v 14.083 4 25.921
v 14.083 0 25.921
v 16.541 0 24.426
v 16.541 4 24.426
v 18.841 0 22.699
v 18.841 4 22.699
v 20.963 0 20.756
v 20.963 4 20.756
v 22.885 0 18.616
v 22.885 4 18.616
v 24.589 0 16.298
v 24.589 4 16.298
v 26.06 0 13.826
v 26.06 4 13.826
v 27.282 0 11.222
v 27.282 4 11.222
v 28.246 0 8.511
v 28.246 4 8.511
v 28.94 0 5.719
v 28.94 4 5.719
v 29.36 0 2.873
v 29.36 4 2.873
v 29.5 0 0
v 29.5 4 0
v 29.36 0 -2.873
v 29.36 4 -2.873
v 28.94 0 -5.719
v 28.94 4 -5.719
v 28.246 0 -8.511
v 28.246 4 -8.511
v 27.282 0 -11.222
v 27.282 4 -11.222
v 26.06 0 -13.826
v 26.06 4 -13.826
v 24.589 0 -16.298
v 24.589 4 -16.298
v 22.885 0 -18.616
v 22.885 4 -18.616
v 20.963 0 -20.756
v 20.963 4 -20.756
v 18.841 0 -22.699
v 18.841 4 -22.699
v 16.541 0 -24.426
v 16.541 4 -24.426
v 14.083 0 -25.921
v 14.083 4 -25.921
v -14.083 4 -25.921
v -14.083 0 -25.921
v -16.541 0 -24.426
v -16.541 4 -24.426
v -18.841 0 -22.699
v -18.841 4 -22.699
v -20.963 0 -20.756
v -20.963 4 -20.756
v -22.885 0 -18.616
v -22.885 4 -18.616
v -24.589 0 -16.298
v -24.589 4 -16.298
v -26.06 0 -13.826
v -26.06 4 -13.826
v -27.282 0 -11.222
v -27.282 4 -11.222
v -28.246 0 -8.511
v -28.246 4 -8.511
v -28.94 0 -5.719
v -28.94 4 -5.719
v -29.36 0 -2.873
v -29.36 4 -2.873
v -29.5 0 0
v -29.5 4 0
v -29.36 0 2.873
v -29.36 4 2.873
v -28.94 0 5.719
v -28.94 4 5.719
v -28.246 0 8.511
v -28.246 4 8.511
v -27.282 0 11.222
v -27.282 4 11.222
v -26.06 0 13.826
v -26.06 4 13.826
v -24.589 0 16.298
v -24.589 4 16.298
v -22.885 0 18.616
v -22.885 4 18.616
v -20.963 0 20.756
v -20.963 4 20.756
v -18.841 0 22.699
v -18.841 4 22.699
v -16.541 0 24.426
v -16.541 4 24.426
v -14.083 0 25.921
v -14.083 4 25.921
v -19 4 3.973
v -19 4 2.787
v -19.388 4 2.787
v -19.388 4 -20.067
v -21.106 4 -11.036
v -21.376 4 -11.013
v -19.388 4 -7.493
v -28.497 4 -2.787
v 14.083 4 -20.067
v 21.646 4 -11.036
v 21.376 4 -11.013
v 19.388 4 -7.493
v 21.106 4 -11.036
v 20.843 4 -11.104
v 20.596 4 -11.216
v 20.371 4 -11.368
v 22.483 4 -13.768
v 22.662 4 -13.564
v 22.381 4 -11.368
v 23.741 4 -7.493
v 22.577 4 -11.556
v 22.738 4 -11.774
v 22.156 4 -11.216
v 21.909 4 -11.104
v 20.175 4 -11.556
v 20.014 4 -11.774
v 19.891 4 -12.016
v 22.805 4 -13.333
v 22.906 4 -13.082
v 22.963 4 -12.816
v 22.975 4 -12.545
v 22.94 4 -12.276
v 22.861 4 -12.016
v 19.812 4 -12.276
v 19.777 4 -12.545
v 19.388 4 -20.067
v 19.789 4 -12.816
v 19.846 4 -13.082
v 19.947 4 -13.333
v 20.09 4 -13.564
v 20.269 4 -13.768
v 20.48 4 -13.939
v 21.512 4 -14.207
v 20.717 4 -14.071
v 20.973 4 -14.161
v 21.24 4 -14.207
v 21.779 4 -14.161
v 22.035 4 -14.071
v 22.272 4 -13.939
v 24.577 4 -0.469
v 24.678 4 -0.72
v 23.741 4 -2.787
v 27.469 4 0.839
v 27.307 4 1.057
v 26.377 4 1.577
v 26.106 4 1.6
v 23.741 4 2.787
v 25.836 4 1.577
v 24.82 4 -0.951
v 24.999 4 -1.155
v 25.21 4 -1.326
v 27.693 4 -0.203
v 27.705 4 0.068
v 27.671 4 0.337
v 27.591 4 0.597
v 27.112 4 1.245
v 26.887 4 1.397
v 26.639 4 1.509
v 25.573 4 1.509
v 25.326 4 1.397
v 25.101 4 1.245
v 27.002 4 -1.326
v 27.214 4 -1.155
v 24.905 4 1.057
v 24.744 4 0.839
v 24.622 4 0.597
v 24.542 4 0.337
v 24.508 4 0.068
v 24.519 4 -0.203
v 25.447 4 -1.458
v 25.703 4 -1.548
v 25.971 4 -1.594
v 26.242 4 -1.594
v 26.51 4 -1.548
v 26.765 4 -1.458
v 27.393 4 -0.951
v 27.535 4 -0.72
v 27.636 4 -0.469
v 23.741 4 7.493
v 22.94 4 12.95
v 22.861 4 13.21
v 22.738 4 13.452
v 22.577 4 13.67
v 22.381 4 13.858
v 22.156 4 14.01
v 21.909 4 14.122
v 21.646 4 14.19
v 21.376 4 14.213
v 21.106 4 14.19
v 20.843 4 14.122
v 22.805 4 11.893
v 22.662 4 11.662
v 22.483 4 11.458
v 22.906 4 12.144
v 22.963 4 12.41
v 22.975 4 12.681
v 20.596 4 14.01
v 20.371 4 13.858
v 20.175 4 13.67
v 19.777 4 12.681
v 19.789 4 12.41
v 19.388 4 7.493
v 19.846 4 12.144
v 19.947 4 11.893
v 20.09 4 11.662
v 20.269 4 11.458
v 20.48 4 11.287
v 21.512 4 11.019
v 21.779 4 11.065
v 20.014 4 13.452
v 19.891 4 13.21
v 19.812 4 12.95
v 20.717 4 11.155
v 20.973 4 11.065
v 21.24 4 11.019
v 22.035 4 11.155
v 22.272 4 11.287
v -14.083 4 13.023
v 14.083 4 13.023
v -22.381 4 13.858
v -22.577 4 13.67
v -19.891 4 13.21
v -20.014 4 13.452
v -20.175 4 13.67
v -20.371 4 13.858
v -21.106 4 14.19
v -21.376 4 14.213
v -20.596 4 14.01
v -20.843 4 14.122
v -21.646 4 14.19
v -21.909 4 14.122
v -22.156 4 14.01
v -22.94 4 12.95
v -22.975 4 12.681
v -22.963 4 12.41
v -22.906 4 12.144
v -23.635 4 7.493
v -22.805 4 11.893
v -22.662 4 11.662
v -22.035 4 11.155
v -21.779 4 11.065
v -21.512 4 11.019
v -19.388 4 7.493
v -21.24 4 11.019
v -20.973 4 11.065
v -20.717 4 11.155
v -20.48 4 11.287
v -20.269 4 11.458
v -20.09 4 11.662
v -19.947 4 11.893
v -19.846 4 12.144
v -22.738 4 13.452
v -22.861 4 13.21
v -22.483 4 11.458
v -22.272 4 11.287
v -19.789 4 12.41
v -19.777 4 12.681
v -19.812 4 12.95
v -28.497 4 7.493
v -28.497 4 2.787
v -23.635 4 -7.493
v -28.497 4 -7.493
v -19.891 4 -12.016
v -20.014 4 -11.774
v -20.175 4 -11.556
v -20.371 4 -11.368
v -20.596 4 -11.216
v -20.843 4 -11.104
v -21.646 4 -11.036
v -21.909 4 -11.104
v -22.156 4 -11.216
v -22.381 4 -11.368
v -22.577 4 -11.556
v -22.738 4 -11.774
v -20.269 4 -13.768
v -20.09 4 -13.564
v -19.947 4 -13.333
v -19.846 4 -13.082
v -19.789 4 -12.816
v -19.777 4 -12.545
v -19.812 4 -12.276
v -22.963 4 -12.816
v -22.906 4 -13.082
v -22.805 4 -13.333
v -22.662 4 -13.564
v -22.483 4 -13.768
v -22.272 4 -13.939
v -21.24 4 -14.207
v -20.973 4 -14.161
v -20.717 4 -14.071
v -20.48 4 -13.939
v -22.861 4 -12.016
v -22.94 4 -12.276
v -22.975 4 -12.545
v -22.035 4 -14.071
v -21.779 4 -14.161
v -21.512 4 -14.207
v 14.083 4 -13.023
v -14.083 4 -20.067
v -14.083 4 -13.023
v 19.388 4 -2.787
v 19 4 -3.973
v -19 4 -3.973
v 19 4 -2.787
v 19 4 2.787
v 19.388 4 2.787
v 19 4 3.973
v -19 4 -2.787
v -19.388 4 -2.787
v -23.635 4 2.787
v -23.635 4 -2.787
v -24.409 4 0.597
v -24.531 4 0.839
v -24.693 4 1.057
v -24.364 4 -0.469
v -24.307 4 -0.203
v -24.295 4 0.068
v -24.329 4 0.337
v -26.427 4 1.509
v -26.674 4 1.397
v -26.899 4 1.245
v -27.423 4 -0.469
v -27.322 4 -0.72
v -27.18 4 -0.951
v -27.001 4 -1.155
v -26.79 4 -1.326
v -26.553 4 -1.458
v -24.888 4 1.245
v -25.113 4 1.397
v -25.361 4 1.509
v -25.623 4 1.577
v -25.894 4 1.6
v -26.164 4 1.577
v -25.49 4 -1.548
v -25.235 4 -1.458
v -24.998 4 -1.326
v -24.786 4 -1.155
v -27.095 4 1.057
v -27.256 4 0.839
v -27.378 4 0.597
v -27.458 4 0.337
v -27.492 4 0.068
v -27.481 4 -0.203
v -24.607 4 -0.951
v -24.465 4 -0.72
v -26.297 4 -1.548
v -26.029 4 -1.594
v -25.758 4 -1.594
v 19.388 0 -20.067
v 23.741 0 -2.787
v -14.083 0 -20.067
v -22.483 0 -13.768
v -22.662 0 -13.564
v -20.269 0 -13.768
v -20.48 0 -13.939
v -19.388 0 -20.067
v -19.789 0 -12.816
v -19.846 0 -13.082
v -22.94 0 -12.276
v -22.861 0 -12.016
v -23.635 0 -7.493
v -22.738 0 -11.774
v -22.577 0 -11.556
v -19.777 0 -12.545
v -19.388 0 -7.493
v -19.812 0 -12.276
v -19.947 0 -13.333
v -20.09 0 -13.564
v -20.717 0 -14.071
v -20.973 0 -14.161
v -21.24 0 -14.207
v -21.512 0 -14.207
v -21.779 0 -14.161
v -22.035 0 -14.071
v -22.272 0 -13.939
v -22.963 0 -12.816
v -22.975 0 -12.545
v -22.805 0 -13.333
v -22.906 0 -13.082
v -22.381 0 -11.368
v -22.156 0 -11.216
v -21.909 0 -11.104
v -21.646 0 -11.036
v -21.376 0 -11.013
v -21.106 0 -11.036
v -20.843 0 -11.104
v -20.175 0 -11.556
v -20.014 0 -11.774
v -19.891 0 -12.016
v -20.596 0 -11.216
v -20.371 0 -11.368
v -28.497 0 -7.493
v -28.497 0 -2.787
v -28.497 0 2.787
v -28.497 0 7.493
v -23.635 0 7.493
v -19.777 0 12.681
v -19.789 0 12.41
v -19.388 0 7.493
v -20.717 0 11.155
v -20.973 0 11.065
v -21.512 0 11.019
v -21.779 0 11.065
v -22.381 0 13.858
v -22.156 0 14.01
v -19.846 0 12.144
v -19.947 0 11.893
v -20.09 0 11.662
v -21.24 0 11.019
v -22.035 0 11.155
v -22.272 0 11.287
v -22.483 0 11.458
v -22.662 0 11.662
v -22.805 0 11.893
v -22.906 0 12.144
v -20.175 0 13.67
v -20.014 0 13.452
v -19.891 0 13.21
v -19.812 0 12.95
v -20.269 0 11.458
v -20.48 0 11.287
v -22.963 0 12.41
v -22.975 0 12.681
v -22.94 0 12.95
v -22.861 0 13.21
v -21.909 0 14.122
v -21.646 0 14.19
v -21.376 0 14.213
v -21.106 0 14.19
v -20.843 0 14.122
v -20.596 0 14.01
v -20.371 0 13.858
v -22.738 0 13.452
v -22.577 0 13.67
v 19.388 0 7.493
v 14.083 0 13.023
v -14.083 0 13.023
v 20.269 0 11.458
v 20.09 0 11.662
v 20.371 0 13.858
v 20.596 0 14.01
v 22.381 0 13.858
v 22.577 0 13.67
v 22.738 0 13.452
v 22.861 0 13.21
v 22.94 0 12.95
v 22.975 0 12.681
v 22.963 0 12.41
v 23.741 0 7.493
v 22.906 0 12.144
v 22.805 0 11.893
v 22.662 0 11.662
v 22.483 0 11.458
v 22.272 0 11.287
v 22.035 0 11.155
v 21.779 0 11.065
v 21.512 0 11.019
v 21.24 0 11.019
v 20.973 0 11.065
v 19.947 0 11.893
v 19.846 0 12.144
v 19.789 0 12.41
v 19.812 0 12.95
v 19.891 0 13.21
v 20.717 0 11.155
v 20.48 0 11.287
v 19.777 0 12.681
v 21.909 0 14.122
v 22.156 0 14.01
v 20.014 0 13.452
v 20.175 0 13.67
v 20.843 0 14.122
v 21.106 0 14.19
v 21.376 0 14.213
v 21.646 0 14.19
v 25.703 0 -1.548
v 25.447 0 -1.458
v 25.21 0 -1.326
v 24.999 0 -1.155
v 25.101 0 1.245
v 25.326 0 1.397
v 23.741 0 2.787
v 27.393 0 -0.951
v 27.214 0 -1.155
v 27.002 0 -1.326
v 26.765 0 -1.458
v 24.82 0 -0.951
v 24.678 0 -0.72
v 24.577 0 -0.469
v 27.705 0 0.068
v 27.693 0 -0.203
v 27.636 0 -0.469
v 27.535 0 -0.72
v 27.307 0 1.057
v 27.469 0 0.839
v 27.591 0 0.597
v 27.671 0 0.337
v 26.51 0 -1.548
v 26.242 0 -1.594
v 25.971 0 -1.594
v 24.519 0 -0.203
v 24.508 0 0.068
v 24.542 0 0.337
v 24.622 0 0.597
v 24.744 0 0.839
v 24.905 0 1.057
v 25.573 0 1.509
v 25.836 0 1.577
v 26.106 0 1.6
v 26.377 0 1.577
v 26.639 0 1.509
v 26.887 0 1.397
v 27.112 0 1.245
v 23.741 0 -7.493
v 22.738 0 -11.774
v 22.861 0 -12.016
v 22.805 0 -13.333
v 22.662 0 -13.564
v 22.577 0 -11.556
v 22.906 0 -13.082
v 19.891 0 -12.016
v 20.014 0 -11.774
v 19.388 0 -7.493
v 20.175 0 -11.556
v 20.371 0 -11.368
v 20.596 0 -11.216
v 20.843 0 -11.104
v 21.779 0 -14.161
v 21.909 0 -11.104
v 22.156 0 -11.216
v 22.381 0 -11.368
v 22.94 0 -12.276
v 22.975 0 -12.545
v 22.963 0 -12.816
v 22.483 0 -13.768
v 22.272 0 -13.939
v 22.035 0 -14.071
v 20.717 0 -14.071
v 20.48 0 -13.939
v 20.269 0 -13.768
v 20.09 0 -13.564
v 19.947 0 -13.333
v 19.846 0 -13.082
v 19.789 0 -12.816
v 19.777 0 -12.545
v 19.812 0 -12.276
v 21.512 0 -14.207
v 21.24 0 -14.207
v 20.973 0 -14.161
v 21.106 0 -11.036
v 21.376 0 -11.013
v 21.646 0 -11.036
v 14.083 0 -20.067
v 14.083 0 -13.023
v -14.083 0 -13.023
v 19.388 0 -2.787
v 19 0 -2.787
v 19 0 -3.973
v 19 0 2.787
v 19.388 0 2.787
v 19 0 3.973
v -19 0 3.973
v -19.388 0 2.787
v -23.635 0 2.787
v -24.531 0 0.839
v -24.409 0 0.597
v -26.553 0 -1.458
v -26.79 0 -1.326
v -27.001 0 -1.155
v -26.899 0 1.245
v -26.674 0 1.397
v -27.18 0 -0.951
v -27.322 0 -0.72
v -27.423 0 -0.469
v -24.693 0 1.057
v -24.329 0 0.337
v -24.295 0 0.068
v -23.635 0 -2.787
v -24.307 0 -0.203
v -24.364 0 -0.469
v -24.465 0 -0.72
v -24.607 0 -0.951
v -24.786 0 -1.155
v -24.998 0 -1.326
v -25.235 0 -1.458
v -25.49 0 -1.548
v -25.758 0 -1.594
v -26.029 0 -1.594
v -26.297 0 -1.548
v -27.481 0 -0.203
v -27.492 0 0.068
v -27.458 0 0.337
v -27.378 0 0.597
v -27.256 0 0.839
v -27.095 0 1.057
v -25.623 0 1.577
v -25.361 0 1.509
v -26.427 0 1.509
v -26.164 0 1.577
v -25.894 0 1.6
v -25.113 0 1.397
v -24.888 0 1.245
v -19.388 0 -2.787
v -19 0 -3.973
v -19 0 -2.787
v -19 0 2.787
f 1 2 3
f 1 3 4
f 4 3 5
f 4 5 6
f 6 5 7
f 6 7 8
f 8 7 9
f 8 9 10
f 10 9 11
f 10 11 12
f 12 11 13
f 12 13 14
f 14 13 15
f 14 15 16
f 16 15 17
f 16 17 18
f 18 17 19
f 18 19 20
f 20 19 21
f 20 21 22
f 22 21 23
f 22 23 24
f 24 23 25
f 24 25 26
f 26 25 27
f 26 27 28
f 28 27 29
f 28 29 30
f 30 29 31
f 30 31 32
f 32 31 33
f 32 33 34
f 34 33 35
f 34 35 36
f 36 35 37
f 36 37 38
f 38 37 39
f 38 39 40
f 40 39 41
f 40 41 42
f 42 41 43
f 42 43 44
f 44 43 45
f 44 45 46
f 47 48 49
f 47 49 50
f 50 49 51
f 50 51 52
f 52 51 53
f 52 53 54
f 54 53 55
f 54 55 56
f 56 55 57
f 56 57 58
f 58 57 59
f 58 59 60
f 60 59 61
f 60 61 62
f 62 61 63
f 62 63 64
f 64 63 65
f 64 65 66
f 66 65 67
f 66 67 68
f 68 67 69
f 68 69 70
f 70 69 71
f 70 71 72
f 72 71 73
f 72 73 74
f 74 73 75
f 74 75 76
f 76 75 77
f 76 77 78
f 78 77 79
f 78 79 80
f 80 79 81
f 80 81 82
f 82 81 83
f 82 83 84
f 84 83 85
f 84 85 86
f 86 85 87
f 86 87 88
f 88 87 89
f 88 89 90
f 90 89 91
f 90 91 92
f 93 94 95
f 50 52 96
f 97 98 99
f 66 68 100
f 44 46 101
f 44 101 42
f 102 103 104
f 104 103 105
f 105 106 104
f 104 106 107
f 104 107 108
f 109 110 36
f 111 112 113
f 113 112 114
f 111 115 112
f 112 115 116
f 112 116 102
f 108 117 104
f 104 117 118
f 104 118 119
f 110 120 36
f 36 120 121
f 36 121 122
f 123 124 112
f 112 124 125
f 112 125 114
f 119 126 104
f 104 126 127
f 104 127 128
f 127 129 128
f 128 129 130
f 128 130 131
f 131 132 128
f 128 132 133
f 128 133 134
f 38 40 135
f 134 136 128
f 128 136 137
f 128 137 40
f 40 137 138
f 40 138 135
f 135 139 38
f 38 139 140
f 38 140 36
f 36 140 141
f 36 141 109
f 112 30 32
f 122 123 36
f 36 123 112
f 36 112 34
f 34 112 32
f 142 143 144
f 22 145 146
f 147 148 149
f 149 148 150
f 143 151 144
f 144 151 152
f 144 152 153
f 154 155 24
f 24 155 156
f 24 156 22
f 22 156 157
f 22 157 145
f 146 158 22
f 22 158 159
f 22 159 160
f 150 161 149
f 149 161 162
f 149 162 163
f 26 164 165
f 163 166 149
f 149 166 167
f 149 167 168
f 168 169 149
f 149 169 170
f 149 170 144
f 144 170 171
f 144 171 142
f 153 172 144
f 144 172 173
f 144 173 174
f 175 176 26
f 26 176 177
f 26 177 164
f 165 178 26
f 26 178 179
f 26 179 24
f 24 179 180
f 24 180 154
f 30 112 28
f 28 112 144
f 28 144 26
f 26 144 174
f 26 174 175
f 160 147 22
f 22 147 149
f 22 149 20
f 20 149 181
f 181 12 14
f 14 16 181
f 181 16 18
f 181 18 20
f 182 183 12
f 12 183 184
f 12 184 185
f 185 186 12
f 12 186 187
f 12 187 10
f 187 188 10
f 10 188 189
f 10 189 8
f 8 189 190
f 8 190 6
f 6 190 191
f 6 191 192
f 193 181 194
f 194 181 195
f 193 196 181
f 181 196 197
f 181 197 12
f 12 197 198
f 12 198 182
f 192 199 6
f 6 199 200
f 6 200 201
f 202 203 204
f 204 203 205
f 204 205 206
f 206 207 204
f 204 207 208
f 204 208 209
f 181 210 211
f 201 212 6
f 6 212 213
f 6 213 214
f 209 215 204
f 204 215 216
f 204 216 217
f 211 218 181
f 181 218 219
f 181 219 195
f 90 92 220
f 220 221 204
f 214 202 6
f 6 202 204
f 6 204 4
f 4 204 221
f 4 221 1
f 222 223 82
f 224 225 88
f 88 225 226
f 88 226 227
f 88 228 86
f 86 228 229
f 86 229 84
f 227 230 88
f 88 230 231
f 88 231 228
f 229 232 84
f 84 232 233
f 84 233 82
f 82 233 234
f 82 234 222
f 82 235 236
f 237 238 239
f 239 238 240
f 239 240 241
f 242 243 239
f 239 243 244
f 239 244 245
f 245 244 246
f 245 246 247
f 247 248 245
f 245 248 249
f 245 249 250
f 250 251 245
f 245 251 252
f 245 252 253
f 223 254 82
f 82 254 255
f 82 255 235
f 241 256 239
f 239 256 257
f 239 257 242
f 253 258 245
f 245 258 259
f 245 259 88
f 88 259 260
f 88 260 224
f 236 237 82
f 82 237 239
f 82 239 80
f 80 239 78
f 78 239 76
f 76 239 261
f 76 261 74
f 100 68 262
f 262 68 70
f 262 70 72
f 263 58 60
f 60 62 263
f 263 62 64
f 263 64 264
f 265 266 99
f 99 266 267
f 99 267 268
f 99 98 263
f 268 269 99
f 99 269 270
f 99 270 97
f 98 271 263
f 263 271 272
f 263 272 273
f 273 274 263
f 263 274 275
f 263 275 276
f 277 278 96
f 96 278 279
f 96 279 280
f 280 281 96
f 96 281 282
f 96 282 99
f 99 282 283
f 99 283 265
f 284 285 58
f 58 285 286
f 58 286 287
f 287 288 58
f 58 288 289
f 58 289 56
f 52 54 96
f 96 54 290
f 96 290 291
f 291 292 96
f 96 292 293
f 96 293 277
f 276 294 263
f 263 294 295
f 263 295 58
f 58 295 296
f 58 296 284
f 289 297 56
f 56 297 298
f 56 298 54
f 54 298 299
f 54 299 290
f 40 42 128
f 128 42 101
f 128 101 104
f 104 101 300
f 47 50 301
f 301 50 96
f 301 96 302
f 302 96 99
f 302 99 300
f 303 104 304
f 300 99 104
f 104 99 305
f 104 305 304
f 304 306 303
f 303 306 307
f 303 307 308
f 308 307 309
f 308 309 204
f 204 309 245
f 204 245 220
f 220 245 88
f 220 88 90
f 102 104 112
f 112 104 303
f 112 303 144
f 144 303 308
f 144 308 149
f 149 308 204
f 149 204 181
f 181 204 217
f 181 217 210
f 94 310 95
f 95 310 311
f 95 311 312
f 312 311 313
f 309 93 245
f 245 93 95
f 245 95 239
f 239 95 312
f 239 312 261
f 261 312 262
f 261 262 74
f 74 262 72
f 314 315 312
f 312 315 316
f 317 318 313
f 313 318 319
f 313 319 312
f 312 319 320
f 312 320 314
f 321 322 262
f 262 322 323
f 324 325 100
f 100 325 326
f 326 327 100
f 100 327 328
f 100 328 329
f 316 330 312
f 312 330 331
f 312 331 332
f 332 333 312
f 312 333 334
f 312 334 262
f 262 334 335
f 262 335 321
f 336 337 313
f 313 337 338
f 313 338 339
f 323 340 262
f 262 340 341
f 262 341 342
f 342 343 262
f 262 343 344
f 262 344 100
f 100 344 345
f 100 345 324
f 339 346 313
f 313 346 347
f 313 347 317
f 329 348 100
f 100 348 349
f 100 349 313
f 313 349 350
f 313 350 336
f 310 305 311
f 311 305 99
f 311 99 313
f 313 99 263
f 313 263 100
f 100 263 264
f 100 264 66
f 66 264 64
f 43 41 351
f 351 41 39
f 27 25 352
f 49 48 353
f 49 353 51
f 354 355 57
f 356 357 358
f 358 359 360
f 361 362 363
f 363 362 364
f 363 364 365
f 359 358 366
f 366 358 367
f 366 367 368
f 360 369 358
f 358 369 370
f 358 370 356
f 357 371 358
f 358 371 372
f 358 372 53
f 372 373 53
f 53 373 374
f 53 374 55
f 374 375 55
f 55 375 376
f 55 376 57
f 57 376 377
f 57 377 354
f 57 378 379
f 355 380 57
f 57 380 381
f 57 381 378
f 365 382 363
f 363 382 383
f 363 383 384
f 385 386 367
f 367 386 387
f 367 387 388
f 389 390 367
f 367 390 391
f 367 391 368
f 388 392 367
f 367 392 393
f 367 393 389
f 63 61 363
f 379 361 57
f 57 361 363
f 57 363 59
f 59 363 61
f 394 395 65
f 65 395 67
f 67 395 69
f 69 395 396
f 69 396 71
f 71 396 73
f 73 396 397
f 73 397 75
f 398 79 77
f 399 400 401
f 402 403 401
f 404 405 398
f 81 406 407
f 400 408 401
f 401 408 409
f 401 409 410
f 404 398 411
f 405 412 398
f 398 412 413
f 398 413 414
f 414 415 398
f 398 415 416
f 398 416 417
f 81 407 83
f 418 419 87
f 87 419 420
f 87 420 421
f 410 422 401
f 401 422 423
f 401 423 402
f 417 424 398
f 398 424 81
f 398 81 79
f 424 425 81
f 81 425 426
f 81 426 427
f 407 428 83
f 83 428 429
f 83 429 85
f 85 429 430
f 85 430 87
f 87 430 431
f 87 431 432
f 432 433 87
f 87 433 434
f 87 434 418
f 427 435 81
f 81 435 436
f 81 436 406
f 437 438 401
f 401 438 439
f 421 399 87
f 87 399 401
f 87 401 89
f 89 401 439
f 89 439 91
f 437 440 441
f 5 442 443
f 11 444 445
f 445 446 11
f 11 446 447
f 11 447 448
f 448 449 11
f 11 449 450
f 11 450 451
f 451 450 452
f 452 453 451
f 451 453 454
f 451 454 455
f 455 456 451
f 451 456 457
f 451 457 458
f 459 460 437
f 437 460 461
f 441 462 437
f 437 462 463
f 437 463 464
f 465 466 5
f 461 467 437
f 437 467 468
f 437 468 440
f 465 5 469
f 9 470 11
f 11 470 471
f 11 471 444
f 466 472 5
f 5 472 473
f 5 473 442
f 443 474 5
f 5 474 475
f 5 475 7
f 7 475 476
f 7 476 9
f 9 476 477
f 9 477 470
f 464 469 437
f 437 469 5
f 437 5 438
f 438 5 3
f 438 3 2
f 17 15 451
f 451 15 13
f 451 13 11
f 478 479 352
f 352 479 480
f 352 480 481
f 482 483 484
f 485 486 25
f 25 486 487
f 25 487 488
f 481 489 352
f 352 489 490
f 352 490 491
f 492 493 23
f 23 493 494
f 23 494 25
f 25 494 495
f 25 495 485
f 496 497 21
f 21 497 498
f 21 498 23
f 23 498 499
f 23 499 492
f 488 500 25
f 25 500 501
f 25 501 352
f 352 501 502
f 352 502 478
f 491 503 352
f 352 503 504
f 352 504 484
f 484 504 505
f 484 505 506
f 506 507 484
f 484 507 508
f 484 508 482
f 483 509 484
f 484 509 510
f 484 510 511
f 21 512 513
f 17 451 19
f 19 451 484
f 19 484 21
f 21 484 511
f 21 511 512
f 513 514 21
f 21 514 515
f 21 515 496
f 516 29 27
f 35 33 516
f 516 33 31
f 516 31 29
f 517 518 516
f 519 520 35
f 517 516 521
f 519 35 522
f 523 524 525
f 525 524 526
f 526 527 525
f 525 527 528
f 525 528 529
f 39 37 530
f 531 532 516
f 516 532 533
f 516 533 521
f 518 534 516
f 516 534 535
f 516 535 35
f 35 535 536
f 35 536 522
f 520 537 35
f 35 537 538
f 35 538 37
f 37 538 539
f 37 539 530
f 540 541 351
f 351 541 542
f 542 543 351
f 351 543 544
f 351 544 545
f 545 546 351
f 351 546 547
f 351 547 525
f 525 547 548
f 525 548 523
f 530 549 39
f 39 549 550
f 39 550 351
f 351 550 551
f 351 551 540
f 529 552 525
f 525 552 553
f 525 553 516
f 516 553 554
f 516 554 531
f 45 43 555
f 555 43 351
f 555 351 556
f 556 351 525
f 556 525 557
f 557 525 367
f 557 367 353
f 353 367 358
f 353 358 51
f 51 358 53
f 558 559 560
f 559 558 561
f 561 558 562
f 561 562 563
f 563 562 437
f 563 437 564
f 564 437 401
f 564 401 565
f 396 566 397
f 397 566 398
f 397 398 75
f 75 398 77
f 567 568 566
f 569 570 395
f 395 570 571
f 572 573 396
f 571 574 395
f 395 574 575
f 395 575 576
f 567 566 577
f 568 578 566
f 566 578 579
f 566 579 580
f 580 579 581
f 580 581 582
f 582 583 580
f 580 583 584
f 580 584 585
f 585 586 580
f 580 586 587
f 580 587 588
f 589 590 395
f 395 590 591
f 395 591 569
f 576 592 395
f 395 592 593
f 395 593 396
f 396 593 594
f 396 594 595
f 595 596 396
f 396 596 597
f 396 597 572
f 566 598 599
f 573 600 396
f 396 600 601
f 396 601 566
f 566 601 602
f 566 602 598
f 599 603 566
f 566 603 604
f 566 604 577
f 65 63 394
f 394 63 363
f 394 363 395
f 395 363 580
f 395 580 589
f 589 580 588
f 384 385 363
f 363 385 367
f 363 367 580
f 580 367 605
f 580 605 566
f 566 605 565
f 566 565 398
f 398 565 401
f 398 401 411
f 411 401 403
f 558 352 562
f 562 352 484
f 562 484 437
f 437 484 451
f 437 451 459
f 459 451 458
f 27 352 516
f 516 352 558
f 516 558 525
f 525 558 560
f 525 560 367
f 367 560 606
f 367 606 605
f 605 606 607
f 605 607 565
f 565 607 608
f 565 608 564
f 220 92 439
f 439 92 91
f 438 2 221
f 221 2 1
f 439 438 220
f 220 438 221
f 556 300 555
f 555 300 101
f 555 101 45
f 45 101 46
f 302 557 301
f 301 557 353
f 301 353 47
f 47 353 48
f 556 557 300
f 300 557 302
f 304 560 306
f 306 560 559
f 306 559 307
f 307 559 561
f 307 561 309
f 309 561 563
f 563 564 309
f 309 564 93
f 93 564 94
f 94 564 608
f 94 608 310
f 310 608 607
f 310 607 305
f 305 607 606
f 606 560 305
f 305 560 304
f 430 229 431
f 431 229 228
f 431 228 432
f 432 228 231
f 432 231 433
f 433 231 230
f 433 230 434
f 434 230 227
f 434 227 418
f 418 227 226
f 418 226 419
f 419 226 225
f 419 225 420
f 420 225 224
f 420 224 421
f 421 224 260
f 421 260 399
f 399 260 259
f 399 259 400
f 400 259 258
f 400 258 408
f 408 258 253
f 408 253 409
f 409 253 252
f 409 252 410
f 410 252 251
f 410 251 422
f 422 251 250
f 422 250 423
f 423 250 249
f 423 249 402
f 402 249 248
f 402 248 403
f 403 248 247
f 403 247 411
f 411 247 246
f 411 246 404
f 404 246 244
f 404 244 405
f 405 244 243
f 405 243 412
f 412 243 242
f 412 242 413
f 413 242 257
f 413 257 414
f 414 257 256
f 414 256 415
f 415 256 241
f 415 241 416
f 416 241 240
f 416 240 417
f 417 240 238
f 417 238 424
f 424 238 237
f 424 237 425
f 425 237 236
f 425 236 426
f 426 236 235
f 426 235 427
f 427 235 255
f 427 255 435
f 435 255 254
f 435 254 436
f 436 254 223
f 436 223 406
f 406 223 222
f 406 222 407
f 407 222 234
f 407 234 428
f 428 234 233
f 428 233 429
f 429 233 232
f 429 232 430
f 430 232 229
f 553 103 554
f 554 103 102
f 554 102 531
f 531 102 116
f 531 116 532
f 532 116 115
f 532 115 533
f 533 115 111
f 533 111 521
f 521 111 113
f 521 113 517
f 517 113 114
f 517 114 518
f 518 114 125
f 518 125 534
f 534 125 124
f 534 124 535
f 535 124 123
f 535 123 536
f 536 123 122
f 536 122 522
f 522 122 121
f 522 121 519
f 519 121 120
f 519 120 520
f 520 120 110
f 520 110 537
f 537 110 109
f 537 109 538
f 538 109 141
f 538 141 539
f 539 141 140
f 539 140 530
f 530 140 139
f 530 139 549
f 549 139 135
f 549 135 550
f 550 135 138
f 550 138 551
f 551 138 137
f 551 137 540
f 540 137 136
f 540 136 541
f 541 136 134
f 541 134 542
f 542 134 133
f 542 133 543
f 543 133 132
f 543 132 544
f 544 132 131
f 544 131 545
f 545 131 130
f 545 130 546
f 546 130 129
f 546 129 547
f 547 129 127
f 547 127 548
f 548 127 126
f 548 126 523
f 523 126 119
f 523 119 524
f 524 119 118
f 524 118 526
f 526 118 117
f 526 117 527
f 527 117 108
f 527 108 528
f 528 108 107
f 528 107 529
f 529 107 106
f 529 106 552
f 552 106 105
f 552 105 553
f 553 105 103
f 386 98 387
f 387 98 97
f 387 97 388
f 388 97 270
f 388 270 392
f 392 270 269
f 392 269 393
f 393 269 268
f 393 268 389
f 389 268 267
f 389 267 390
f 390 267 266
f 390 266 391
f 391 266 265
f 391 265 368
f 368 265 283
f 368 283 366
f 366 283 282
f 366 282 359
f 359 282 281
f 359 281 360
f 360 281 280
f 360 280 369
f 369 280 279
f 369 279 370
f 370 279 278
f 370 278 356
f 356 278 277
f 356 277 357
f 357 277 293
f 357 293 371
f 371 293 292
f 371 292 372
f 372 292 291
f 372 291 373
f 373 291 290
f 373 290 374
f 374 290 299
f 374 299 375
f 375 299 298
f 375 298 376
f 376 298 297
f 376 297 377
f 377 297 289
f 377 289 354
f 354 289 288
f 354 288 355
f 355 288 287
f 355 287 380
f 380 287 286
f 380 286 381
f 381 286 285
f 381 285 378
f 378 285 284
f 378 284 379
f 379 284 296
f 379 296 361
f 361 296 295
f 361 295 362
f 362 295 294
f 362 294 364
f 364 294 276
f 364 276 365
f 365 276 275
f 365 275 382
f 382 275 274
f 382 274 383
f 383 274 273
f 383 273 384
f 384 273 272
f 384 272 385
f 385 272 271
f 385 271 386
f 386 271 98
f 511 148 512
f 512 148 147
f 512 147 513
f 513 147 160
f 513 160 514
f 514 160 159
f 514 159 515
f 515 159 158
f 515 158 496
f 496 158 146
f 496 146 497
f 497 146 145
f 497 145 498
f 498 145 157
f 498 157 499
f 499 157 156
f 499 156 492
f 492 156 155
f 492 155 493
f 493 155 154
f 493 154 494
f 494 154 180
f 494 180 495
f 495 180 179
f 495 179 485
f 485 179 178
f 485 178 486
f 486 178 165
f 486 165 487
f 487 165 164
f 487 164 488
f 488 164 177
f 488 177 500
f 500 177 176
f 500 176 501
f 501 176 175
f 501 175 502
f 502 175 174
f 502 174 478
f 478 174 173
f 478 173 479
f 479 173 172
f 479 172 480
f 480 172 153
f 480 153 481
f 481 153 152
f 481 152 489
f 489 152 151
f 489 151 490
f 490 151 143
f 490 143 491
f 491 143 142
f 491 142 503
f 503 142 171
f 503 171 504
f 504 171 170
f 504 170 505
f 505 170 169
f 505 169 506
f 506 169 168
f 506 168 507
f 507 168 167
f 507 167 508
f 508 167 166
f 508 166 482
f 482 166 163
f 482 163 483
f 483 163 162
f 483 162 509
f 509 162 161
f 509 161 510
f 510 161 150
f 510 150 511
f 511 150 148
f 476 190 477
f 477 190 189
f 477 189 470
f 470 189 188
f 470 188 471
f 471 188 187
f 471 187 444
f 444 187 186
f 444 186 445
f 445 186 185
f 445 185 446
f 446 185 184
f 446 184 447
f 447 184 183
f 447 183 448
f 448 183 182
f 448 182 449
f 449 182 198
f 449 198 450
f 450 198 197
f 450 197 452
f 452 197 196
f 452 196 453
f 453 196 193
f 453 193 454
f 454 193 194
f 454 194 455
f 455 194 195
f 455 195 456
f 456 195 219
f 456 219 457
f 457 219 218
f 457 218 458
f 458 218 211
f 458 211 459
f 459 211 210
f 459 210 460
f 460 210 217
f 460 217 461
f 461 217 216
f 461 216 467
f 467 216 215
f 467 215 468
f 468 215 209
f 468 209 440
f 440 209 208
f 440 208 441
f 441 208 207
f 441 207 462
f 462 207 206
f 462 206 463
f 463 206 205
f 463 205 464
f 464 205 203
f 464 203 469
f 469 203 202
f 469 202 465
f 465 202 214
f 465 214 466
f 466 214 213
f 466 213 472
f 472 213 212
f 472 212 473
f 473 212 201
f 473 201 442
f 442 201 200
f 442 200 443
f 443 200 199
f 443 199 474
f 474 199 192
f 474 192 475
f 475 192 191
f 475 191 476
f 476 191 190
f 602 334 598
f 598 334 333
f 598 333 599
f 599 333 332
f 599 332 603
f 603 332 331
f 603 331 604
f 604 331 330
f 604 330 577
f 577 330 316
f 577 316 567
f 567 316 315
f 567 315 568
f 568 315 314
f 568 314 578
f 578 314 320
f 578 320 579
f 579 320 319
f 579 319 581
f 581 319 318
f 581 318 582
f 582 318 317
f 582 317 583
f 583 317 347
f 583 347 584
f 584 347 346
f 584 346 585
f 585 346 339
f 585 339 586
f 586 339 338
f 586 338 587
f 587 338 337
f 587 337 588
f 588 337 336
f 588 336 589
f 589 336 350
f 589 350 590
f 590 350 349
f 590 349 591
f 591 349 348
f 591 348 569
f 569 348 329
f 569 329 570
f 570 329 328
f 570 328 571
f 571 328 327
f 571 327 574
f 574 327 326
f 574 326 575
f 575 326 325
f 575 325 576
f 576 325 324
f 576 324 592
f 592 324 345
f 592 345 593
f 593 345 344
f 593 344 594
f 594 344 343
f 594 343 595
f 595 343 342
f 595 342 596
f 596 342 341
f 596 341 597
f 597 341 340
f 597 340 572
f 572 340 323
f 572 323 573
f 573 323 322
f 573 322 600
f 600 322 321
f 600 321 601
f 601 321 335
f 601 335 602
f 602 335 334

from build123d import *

# Parameters (mm, degrees)
SKETCH_1_R          = 29.5
EXTRUDE_1_DEPTH     = 4
SKETCH_2_W          = 28.166253132
SKETCH_2_H          = 32.95394871
CUT_EXTRUDE_1_DEPTH = 42.910619179
SKETCH_3_W          = 38
SKETCH_3_H          = 7.946399408
CUT_EXTRUDE_2_DEPTH = 40.47360569
SKETCH_6_R          = 1.6
CUT_EXTRUDE_5_DEPTH = 40.47360569


with BuildPart() as part:
    # 草图1 → 凸台-拉伸1 (new body)
    with BuildSketch(Plane(origin=(0, 0, 0), x_dir=(1, 0, 0), z_dir=(0, 1, 0))):
        with Locations(Location((0, 0, 0), (0, 0, 270))):
            Circle(SKETCH_1_R)
    extrude(amount=EXTRUDE_1_DEPTH)

    # 草图2 → 切除-拉伸1 (cut, through all)
    with BuildSketch(Plane(origin=(0, 4, 0), x_dir=(1, 0, 0), z_dir=(0, 1, 0))):
        with Locations((0, 29.5)):
            Rectangle(SKETCH_2_W, SKETCH_2_H)
        with Locations((0, -29.5)):
            Rectangle(SKETCH_2_W, SKETCH_2_H)
    extrude(amount=-CUT_EXTRUDE_1_DEPTH, mode=Mode.SUBTRACT)

    # 草图3 → 切除-拉伸2 (cut, through all)
    with BuildSketch(Plane(origin=(0, 4, 0), x_dir=(1, 0, 0), z_dir=(0, 1, 0))):
        Rectangle(SKETCH_3_W, SKETCH_3_H)
    extrude(amount=-CUT_EXTRUDE_2_DEPTH, mode=Mode.SUBTRACT)

    # 草图6 → 切除-拉伸5 (cut, through all)
    with BuildSketch(Plane(origin=(0, 4, 0), x_dir=(1, 0, 0), z_dir=(0, 1, 0))):
        with Locations(Location((-25.893583016, 0, 0), (0, 0, 270))):
            Circle(SKETCH_6_R)
        with Locations(Location((26.106416984, 0, 0), (0, 0, 270))):
            Circle(SKETCH_6_R)
        with Locations(Location((-21.376, 12.613, 0), (0, 0, 270))):
            Circle(SKETCH_6_R)
        with Locations(Location((21.376, 12.613, 0), (0, 0, 270))):
            Circle(SKETCH_6_R)
        with Locations(Location((-21.376, -12.613, 0), (0, 0, 270))):
            Circle(SKETCH_6_R)
        with Locations(Location((21.376, -12.613, 0), (0, 0, 270))):
            Circle(SKETCH_6_R)
    extrude(amount=-CUT_EXTRUDE_5_DEPTH, mode=Mode.SUBTRACT)


solid = part.part
